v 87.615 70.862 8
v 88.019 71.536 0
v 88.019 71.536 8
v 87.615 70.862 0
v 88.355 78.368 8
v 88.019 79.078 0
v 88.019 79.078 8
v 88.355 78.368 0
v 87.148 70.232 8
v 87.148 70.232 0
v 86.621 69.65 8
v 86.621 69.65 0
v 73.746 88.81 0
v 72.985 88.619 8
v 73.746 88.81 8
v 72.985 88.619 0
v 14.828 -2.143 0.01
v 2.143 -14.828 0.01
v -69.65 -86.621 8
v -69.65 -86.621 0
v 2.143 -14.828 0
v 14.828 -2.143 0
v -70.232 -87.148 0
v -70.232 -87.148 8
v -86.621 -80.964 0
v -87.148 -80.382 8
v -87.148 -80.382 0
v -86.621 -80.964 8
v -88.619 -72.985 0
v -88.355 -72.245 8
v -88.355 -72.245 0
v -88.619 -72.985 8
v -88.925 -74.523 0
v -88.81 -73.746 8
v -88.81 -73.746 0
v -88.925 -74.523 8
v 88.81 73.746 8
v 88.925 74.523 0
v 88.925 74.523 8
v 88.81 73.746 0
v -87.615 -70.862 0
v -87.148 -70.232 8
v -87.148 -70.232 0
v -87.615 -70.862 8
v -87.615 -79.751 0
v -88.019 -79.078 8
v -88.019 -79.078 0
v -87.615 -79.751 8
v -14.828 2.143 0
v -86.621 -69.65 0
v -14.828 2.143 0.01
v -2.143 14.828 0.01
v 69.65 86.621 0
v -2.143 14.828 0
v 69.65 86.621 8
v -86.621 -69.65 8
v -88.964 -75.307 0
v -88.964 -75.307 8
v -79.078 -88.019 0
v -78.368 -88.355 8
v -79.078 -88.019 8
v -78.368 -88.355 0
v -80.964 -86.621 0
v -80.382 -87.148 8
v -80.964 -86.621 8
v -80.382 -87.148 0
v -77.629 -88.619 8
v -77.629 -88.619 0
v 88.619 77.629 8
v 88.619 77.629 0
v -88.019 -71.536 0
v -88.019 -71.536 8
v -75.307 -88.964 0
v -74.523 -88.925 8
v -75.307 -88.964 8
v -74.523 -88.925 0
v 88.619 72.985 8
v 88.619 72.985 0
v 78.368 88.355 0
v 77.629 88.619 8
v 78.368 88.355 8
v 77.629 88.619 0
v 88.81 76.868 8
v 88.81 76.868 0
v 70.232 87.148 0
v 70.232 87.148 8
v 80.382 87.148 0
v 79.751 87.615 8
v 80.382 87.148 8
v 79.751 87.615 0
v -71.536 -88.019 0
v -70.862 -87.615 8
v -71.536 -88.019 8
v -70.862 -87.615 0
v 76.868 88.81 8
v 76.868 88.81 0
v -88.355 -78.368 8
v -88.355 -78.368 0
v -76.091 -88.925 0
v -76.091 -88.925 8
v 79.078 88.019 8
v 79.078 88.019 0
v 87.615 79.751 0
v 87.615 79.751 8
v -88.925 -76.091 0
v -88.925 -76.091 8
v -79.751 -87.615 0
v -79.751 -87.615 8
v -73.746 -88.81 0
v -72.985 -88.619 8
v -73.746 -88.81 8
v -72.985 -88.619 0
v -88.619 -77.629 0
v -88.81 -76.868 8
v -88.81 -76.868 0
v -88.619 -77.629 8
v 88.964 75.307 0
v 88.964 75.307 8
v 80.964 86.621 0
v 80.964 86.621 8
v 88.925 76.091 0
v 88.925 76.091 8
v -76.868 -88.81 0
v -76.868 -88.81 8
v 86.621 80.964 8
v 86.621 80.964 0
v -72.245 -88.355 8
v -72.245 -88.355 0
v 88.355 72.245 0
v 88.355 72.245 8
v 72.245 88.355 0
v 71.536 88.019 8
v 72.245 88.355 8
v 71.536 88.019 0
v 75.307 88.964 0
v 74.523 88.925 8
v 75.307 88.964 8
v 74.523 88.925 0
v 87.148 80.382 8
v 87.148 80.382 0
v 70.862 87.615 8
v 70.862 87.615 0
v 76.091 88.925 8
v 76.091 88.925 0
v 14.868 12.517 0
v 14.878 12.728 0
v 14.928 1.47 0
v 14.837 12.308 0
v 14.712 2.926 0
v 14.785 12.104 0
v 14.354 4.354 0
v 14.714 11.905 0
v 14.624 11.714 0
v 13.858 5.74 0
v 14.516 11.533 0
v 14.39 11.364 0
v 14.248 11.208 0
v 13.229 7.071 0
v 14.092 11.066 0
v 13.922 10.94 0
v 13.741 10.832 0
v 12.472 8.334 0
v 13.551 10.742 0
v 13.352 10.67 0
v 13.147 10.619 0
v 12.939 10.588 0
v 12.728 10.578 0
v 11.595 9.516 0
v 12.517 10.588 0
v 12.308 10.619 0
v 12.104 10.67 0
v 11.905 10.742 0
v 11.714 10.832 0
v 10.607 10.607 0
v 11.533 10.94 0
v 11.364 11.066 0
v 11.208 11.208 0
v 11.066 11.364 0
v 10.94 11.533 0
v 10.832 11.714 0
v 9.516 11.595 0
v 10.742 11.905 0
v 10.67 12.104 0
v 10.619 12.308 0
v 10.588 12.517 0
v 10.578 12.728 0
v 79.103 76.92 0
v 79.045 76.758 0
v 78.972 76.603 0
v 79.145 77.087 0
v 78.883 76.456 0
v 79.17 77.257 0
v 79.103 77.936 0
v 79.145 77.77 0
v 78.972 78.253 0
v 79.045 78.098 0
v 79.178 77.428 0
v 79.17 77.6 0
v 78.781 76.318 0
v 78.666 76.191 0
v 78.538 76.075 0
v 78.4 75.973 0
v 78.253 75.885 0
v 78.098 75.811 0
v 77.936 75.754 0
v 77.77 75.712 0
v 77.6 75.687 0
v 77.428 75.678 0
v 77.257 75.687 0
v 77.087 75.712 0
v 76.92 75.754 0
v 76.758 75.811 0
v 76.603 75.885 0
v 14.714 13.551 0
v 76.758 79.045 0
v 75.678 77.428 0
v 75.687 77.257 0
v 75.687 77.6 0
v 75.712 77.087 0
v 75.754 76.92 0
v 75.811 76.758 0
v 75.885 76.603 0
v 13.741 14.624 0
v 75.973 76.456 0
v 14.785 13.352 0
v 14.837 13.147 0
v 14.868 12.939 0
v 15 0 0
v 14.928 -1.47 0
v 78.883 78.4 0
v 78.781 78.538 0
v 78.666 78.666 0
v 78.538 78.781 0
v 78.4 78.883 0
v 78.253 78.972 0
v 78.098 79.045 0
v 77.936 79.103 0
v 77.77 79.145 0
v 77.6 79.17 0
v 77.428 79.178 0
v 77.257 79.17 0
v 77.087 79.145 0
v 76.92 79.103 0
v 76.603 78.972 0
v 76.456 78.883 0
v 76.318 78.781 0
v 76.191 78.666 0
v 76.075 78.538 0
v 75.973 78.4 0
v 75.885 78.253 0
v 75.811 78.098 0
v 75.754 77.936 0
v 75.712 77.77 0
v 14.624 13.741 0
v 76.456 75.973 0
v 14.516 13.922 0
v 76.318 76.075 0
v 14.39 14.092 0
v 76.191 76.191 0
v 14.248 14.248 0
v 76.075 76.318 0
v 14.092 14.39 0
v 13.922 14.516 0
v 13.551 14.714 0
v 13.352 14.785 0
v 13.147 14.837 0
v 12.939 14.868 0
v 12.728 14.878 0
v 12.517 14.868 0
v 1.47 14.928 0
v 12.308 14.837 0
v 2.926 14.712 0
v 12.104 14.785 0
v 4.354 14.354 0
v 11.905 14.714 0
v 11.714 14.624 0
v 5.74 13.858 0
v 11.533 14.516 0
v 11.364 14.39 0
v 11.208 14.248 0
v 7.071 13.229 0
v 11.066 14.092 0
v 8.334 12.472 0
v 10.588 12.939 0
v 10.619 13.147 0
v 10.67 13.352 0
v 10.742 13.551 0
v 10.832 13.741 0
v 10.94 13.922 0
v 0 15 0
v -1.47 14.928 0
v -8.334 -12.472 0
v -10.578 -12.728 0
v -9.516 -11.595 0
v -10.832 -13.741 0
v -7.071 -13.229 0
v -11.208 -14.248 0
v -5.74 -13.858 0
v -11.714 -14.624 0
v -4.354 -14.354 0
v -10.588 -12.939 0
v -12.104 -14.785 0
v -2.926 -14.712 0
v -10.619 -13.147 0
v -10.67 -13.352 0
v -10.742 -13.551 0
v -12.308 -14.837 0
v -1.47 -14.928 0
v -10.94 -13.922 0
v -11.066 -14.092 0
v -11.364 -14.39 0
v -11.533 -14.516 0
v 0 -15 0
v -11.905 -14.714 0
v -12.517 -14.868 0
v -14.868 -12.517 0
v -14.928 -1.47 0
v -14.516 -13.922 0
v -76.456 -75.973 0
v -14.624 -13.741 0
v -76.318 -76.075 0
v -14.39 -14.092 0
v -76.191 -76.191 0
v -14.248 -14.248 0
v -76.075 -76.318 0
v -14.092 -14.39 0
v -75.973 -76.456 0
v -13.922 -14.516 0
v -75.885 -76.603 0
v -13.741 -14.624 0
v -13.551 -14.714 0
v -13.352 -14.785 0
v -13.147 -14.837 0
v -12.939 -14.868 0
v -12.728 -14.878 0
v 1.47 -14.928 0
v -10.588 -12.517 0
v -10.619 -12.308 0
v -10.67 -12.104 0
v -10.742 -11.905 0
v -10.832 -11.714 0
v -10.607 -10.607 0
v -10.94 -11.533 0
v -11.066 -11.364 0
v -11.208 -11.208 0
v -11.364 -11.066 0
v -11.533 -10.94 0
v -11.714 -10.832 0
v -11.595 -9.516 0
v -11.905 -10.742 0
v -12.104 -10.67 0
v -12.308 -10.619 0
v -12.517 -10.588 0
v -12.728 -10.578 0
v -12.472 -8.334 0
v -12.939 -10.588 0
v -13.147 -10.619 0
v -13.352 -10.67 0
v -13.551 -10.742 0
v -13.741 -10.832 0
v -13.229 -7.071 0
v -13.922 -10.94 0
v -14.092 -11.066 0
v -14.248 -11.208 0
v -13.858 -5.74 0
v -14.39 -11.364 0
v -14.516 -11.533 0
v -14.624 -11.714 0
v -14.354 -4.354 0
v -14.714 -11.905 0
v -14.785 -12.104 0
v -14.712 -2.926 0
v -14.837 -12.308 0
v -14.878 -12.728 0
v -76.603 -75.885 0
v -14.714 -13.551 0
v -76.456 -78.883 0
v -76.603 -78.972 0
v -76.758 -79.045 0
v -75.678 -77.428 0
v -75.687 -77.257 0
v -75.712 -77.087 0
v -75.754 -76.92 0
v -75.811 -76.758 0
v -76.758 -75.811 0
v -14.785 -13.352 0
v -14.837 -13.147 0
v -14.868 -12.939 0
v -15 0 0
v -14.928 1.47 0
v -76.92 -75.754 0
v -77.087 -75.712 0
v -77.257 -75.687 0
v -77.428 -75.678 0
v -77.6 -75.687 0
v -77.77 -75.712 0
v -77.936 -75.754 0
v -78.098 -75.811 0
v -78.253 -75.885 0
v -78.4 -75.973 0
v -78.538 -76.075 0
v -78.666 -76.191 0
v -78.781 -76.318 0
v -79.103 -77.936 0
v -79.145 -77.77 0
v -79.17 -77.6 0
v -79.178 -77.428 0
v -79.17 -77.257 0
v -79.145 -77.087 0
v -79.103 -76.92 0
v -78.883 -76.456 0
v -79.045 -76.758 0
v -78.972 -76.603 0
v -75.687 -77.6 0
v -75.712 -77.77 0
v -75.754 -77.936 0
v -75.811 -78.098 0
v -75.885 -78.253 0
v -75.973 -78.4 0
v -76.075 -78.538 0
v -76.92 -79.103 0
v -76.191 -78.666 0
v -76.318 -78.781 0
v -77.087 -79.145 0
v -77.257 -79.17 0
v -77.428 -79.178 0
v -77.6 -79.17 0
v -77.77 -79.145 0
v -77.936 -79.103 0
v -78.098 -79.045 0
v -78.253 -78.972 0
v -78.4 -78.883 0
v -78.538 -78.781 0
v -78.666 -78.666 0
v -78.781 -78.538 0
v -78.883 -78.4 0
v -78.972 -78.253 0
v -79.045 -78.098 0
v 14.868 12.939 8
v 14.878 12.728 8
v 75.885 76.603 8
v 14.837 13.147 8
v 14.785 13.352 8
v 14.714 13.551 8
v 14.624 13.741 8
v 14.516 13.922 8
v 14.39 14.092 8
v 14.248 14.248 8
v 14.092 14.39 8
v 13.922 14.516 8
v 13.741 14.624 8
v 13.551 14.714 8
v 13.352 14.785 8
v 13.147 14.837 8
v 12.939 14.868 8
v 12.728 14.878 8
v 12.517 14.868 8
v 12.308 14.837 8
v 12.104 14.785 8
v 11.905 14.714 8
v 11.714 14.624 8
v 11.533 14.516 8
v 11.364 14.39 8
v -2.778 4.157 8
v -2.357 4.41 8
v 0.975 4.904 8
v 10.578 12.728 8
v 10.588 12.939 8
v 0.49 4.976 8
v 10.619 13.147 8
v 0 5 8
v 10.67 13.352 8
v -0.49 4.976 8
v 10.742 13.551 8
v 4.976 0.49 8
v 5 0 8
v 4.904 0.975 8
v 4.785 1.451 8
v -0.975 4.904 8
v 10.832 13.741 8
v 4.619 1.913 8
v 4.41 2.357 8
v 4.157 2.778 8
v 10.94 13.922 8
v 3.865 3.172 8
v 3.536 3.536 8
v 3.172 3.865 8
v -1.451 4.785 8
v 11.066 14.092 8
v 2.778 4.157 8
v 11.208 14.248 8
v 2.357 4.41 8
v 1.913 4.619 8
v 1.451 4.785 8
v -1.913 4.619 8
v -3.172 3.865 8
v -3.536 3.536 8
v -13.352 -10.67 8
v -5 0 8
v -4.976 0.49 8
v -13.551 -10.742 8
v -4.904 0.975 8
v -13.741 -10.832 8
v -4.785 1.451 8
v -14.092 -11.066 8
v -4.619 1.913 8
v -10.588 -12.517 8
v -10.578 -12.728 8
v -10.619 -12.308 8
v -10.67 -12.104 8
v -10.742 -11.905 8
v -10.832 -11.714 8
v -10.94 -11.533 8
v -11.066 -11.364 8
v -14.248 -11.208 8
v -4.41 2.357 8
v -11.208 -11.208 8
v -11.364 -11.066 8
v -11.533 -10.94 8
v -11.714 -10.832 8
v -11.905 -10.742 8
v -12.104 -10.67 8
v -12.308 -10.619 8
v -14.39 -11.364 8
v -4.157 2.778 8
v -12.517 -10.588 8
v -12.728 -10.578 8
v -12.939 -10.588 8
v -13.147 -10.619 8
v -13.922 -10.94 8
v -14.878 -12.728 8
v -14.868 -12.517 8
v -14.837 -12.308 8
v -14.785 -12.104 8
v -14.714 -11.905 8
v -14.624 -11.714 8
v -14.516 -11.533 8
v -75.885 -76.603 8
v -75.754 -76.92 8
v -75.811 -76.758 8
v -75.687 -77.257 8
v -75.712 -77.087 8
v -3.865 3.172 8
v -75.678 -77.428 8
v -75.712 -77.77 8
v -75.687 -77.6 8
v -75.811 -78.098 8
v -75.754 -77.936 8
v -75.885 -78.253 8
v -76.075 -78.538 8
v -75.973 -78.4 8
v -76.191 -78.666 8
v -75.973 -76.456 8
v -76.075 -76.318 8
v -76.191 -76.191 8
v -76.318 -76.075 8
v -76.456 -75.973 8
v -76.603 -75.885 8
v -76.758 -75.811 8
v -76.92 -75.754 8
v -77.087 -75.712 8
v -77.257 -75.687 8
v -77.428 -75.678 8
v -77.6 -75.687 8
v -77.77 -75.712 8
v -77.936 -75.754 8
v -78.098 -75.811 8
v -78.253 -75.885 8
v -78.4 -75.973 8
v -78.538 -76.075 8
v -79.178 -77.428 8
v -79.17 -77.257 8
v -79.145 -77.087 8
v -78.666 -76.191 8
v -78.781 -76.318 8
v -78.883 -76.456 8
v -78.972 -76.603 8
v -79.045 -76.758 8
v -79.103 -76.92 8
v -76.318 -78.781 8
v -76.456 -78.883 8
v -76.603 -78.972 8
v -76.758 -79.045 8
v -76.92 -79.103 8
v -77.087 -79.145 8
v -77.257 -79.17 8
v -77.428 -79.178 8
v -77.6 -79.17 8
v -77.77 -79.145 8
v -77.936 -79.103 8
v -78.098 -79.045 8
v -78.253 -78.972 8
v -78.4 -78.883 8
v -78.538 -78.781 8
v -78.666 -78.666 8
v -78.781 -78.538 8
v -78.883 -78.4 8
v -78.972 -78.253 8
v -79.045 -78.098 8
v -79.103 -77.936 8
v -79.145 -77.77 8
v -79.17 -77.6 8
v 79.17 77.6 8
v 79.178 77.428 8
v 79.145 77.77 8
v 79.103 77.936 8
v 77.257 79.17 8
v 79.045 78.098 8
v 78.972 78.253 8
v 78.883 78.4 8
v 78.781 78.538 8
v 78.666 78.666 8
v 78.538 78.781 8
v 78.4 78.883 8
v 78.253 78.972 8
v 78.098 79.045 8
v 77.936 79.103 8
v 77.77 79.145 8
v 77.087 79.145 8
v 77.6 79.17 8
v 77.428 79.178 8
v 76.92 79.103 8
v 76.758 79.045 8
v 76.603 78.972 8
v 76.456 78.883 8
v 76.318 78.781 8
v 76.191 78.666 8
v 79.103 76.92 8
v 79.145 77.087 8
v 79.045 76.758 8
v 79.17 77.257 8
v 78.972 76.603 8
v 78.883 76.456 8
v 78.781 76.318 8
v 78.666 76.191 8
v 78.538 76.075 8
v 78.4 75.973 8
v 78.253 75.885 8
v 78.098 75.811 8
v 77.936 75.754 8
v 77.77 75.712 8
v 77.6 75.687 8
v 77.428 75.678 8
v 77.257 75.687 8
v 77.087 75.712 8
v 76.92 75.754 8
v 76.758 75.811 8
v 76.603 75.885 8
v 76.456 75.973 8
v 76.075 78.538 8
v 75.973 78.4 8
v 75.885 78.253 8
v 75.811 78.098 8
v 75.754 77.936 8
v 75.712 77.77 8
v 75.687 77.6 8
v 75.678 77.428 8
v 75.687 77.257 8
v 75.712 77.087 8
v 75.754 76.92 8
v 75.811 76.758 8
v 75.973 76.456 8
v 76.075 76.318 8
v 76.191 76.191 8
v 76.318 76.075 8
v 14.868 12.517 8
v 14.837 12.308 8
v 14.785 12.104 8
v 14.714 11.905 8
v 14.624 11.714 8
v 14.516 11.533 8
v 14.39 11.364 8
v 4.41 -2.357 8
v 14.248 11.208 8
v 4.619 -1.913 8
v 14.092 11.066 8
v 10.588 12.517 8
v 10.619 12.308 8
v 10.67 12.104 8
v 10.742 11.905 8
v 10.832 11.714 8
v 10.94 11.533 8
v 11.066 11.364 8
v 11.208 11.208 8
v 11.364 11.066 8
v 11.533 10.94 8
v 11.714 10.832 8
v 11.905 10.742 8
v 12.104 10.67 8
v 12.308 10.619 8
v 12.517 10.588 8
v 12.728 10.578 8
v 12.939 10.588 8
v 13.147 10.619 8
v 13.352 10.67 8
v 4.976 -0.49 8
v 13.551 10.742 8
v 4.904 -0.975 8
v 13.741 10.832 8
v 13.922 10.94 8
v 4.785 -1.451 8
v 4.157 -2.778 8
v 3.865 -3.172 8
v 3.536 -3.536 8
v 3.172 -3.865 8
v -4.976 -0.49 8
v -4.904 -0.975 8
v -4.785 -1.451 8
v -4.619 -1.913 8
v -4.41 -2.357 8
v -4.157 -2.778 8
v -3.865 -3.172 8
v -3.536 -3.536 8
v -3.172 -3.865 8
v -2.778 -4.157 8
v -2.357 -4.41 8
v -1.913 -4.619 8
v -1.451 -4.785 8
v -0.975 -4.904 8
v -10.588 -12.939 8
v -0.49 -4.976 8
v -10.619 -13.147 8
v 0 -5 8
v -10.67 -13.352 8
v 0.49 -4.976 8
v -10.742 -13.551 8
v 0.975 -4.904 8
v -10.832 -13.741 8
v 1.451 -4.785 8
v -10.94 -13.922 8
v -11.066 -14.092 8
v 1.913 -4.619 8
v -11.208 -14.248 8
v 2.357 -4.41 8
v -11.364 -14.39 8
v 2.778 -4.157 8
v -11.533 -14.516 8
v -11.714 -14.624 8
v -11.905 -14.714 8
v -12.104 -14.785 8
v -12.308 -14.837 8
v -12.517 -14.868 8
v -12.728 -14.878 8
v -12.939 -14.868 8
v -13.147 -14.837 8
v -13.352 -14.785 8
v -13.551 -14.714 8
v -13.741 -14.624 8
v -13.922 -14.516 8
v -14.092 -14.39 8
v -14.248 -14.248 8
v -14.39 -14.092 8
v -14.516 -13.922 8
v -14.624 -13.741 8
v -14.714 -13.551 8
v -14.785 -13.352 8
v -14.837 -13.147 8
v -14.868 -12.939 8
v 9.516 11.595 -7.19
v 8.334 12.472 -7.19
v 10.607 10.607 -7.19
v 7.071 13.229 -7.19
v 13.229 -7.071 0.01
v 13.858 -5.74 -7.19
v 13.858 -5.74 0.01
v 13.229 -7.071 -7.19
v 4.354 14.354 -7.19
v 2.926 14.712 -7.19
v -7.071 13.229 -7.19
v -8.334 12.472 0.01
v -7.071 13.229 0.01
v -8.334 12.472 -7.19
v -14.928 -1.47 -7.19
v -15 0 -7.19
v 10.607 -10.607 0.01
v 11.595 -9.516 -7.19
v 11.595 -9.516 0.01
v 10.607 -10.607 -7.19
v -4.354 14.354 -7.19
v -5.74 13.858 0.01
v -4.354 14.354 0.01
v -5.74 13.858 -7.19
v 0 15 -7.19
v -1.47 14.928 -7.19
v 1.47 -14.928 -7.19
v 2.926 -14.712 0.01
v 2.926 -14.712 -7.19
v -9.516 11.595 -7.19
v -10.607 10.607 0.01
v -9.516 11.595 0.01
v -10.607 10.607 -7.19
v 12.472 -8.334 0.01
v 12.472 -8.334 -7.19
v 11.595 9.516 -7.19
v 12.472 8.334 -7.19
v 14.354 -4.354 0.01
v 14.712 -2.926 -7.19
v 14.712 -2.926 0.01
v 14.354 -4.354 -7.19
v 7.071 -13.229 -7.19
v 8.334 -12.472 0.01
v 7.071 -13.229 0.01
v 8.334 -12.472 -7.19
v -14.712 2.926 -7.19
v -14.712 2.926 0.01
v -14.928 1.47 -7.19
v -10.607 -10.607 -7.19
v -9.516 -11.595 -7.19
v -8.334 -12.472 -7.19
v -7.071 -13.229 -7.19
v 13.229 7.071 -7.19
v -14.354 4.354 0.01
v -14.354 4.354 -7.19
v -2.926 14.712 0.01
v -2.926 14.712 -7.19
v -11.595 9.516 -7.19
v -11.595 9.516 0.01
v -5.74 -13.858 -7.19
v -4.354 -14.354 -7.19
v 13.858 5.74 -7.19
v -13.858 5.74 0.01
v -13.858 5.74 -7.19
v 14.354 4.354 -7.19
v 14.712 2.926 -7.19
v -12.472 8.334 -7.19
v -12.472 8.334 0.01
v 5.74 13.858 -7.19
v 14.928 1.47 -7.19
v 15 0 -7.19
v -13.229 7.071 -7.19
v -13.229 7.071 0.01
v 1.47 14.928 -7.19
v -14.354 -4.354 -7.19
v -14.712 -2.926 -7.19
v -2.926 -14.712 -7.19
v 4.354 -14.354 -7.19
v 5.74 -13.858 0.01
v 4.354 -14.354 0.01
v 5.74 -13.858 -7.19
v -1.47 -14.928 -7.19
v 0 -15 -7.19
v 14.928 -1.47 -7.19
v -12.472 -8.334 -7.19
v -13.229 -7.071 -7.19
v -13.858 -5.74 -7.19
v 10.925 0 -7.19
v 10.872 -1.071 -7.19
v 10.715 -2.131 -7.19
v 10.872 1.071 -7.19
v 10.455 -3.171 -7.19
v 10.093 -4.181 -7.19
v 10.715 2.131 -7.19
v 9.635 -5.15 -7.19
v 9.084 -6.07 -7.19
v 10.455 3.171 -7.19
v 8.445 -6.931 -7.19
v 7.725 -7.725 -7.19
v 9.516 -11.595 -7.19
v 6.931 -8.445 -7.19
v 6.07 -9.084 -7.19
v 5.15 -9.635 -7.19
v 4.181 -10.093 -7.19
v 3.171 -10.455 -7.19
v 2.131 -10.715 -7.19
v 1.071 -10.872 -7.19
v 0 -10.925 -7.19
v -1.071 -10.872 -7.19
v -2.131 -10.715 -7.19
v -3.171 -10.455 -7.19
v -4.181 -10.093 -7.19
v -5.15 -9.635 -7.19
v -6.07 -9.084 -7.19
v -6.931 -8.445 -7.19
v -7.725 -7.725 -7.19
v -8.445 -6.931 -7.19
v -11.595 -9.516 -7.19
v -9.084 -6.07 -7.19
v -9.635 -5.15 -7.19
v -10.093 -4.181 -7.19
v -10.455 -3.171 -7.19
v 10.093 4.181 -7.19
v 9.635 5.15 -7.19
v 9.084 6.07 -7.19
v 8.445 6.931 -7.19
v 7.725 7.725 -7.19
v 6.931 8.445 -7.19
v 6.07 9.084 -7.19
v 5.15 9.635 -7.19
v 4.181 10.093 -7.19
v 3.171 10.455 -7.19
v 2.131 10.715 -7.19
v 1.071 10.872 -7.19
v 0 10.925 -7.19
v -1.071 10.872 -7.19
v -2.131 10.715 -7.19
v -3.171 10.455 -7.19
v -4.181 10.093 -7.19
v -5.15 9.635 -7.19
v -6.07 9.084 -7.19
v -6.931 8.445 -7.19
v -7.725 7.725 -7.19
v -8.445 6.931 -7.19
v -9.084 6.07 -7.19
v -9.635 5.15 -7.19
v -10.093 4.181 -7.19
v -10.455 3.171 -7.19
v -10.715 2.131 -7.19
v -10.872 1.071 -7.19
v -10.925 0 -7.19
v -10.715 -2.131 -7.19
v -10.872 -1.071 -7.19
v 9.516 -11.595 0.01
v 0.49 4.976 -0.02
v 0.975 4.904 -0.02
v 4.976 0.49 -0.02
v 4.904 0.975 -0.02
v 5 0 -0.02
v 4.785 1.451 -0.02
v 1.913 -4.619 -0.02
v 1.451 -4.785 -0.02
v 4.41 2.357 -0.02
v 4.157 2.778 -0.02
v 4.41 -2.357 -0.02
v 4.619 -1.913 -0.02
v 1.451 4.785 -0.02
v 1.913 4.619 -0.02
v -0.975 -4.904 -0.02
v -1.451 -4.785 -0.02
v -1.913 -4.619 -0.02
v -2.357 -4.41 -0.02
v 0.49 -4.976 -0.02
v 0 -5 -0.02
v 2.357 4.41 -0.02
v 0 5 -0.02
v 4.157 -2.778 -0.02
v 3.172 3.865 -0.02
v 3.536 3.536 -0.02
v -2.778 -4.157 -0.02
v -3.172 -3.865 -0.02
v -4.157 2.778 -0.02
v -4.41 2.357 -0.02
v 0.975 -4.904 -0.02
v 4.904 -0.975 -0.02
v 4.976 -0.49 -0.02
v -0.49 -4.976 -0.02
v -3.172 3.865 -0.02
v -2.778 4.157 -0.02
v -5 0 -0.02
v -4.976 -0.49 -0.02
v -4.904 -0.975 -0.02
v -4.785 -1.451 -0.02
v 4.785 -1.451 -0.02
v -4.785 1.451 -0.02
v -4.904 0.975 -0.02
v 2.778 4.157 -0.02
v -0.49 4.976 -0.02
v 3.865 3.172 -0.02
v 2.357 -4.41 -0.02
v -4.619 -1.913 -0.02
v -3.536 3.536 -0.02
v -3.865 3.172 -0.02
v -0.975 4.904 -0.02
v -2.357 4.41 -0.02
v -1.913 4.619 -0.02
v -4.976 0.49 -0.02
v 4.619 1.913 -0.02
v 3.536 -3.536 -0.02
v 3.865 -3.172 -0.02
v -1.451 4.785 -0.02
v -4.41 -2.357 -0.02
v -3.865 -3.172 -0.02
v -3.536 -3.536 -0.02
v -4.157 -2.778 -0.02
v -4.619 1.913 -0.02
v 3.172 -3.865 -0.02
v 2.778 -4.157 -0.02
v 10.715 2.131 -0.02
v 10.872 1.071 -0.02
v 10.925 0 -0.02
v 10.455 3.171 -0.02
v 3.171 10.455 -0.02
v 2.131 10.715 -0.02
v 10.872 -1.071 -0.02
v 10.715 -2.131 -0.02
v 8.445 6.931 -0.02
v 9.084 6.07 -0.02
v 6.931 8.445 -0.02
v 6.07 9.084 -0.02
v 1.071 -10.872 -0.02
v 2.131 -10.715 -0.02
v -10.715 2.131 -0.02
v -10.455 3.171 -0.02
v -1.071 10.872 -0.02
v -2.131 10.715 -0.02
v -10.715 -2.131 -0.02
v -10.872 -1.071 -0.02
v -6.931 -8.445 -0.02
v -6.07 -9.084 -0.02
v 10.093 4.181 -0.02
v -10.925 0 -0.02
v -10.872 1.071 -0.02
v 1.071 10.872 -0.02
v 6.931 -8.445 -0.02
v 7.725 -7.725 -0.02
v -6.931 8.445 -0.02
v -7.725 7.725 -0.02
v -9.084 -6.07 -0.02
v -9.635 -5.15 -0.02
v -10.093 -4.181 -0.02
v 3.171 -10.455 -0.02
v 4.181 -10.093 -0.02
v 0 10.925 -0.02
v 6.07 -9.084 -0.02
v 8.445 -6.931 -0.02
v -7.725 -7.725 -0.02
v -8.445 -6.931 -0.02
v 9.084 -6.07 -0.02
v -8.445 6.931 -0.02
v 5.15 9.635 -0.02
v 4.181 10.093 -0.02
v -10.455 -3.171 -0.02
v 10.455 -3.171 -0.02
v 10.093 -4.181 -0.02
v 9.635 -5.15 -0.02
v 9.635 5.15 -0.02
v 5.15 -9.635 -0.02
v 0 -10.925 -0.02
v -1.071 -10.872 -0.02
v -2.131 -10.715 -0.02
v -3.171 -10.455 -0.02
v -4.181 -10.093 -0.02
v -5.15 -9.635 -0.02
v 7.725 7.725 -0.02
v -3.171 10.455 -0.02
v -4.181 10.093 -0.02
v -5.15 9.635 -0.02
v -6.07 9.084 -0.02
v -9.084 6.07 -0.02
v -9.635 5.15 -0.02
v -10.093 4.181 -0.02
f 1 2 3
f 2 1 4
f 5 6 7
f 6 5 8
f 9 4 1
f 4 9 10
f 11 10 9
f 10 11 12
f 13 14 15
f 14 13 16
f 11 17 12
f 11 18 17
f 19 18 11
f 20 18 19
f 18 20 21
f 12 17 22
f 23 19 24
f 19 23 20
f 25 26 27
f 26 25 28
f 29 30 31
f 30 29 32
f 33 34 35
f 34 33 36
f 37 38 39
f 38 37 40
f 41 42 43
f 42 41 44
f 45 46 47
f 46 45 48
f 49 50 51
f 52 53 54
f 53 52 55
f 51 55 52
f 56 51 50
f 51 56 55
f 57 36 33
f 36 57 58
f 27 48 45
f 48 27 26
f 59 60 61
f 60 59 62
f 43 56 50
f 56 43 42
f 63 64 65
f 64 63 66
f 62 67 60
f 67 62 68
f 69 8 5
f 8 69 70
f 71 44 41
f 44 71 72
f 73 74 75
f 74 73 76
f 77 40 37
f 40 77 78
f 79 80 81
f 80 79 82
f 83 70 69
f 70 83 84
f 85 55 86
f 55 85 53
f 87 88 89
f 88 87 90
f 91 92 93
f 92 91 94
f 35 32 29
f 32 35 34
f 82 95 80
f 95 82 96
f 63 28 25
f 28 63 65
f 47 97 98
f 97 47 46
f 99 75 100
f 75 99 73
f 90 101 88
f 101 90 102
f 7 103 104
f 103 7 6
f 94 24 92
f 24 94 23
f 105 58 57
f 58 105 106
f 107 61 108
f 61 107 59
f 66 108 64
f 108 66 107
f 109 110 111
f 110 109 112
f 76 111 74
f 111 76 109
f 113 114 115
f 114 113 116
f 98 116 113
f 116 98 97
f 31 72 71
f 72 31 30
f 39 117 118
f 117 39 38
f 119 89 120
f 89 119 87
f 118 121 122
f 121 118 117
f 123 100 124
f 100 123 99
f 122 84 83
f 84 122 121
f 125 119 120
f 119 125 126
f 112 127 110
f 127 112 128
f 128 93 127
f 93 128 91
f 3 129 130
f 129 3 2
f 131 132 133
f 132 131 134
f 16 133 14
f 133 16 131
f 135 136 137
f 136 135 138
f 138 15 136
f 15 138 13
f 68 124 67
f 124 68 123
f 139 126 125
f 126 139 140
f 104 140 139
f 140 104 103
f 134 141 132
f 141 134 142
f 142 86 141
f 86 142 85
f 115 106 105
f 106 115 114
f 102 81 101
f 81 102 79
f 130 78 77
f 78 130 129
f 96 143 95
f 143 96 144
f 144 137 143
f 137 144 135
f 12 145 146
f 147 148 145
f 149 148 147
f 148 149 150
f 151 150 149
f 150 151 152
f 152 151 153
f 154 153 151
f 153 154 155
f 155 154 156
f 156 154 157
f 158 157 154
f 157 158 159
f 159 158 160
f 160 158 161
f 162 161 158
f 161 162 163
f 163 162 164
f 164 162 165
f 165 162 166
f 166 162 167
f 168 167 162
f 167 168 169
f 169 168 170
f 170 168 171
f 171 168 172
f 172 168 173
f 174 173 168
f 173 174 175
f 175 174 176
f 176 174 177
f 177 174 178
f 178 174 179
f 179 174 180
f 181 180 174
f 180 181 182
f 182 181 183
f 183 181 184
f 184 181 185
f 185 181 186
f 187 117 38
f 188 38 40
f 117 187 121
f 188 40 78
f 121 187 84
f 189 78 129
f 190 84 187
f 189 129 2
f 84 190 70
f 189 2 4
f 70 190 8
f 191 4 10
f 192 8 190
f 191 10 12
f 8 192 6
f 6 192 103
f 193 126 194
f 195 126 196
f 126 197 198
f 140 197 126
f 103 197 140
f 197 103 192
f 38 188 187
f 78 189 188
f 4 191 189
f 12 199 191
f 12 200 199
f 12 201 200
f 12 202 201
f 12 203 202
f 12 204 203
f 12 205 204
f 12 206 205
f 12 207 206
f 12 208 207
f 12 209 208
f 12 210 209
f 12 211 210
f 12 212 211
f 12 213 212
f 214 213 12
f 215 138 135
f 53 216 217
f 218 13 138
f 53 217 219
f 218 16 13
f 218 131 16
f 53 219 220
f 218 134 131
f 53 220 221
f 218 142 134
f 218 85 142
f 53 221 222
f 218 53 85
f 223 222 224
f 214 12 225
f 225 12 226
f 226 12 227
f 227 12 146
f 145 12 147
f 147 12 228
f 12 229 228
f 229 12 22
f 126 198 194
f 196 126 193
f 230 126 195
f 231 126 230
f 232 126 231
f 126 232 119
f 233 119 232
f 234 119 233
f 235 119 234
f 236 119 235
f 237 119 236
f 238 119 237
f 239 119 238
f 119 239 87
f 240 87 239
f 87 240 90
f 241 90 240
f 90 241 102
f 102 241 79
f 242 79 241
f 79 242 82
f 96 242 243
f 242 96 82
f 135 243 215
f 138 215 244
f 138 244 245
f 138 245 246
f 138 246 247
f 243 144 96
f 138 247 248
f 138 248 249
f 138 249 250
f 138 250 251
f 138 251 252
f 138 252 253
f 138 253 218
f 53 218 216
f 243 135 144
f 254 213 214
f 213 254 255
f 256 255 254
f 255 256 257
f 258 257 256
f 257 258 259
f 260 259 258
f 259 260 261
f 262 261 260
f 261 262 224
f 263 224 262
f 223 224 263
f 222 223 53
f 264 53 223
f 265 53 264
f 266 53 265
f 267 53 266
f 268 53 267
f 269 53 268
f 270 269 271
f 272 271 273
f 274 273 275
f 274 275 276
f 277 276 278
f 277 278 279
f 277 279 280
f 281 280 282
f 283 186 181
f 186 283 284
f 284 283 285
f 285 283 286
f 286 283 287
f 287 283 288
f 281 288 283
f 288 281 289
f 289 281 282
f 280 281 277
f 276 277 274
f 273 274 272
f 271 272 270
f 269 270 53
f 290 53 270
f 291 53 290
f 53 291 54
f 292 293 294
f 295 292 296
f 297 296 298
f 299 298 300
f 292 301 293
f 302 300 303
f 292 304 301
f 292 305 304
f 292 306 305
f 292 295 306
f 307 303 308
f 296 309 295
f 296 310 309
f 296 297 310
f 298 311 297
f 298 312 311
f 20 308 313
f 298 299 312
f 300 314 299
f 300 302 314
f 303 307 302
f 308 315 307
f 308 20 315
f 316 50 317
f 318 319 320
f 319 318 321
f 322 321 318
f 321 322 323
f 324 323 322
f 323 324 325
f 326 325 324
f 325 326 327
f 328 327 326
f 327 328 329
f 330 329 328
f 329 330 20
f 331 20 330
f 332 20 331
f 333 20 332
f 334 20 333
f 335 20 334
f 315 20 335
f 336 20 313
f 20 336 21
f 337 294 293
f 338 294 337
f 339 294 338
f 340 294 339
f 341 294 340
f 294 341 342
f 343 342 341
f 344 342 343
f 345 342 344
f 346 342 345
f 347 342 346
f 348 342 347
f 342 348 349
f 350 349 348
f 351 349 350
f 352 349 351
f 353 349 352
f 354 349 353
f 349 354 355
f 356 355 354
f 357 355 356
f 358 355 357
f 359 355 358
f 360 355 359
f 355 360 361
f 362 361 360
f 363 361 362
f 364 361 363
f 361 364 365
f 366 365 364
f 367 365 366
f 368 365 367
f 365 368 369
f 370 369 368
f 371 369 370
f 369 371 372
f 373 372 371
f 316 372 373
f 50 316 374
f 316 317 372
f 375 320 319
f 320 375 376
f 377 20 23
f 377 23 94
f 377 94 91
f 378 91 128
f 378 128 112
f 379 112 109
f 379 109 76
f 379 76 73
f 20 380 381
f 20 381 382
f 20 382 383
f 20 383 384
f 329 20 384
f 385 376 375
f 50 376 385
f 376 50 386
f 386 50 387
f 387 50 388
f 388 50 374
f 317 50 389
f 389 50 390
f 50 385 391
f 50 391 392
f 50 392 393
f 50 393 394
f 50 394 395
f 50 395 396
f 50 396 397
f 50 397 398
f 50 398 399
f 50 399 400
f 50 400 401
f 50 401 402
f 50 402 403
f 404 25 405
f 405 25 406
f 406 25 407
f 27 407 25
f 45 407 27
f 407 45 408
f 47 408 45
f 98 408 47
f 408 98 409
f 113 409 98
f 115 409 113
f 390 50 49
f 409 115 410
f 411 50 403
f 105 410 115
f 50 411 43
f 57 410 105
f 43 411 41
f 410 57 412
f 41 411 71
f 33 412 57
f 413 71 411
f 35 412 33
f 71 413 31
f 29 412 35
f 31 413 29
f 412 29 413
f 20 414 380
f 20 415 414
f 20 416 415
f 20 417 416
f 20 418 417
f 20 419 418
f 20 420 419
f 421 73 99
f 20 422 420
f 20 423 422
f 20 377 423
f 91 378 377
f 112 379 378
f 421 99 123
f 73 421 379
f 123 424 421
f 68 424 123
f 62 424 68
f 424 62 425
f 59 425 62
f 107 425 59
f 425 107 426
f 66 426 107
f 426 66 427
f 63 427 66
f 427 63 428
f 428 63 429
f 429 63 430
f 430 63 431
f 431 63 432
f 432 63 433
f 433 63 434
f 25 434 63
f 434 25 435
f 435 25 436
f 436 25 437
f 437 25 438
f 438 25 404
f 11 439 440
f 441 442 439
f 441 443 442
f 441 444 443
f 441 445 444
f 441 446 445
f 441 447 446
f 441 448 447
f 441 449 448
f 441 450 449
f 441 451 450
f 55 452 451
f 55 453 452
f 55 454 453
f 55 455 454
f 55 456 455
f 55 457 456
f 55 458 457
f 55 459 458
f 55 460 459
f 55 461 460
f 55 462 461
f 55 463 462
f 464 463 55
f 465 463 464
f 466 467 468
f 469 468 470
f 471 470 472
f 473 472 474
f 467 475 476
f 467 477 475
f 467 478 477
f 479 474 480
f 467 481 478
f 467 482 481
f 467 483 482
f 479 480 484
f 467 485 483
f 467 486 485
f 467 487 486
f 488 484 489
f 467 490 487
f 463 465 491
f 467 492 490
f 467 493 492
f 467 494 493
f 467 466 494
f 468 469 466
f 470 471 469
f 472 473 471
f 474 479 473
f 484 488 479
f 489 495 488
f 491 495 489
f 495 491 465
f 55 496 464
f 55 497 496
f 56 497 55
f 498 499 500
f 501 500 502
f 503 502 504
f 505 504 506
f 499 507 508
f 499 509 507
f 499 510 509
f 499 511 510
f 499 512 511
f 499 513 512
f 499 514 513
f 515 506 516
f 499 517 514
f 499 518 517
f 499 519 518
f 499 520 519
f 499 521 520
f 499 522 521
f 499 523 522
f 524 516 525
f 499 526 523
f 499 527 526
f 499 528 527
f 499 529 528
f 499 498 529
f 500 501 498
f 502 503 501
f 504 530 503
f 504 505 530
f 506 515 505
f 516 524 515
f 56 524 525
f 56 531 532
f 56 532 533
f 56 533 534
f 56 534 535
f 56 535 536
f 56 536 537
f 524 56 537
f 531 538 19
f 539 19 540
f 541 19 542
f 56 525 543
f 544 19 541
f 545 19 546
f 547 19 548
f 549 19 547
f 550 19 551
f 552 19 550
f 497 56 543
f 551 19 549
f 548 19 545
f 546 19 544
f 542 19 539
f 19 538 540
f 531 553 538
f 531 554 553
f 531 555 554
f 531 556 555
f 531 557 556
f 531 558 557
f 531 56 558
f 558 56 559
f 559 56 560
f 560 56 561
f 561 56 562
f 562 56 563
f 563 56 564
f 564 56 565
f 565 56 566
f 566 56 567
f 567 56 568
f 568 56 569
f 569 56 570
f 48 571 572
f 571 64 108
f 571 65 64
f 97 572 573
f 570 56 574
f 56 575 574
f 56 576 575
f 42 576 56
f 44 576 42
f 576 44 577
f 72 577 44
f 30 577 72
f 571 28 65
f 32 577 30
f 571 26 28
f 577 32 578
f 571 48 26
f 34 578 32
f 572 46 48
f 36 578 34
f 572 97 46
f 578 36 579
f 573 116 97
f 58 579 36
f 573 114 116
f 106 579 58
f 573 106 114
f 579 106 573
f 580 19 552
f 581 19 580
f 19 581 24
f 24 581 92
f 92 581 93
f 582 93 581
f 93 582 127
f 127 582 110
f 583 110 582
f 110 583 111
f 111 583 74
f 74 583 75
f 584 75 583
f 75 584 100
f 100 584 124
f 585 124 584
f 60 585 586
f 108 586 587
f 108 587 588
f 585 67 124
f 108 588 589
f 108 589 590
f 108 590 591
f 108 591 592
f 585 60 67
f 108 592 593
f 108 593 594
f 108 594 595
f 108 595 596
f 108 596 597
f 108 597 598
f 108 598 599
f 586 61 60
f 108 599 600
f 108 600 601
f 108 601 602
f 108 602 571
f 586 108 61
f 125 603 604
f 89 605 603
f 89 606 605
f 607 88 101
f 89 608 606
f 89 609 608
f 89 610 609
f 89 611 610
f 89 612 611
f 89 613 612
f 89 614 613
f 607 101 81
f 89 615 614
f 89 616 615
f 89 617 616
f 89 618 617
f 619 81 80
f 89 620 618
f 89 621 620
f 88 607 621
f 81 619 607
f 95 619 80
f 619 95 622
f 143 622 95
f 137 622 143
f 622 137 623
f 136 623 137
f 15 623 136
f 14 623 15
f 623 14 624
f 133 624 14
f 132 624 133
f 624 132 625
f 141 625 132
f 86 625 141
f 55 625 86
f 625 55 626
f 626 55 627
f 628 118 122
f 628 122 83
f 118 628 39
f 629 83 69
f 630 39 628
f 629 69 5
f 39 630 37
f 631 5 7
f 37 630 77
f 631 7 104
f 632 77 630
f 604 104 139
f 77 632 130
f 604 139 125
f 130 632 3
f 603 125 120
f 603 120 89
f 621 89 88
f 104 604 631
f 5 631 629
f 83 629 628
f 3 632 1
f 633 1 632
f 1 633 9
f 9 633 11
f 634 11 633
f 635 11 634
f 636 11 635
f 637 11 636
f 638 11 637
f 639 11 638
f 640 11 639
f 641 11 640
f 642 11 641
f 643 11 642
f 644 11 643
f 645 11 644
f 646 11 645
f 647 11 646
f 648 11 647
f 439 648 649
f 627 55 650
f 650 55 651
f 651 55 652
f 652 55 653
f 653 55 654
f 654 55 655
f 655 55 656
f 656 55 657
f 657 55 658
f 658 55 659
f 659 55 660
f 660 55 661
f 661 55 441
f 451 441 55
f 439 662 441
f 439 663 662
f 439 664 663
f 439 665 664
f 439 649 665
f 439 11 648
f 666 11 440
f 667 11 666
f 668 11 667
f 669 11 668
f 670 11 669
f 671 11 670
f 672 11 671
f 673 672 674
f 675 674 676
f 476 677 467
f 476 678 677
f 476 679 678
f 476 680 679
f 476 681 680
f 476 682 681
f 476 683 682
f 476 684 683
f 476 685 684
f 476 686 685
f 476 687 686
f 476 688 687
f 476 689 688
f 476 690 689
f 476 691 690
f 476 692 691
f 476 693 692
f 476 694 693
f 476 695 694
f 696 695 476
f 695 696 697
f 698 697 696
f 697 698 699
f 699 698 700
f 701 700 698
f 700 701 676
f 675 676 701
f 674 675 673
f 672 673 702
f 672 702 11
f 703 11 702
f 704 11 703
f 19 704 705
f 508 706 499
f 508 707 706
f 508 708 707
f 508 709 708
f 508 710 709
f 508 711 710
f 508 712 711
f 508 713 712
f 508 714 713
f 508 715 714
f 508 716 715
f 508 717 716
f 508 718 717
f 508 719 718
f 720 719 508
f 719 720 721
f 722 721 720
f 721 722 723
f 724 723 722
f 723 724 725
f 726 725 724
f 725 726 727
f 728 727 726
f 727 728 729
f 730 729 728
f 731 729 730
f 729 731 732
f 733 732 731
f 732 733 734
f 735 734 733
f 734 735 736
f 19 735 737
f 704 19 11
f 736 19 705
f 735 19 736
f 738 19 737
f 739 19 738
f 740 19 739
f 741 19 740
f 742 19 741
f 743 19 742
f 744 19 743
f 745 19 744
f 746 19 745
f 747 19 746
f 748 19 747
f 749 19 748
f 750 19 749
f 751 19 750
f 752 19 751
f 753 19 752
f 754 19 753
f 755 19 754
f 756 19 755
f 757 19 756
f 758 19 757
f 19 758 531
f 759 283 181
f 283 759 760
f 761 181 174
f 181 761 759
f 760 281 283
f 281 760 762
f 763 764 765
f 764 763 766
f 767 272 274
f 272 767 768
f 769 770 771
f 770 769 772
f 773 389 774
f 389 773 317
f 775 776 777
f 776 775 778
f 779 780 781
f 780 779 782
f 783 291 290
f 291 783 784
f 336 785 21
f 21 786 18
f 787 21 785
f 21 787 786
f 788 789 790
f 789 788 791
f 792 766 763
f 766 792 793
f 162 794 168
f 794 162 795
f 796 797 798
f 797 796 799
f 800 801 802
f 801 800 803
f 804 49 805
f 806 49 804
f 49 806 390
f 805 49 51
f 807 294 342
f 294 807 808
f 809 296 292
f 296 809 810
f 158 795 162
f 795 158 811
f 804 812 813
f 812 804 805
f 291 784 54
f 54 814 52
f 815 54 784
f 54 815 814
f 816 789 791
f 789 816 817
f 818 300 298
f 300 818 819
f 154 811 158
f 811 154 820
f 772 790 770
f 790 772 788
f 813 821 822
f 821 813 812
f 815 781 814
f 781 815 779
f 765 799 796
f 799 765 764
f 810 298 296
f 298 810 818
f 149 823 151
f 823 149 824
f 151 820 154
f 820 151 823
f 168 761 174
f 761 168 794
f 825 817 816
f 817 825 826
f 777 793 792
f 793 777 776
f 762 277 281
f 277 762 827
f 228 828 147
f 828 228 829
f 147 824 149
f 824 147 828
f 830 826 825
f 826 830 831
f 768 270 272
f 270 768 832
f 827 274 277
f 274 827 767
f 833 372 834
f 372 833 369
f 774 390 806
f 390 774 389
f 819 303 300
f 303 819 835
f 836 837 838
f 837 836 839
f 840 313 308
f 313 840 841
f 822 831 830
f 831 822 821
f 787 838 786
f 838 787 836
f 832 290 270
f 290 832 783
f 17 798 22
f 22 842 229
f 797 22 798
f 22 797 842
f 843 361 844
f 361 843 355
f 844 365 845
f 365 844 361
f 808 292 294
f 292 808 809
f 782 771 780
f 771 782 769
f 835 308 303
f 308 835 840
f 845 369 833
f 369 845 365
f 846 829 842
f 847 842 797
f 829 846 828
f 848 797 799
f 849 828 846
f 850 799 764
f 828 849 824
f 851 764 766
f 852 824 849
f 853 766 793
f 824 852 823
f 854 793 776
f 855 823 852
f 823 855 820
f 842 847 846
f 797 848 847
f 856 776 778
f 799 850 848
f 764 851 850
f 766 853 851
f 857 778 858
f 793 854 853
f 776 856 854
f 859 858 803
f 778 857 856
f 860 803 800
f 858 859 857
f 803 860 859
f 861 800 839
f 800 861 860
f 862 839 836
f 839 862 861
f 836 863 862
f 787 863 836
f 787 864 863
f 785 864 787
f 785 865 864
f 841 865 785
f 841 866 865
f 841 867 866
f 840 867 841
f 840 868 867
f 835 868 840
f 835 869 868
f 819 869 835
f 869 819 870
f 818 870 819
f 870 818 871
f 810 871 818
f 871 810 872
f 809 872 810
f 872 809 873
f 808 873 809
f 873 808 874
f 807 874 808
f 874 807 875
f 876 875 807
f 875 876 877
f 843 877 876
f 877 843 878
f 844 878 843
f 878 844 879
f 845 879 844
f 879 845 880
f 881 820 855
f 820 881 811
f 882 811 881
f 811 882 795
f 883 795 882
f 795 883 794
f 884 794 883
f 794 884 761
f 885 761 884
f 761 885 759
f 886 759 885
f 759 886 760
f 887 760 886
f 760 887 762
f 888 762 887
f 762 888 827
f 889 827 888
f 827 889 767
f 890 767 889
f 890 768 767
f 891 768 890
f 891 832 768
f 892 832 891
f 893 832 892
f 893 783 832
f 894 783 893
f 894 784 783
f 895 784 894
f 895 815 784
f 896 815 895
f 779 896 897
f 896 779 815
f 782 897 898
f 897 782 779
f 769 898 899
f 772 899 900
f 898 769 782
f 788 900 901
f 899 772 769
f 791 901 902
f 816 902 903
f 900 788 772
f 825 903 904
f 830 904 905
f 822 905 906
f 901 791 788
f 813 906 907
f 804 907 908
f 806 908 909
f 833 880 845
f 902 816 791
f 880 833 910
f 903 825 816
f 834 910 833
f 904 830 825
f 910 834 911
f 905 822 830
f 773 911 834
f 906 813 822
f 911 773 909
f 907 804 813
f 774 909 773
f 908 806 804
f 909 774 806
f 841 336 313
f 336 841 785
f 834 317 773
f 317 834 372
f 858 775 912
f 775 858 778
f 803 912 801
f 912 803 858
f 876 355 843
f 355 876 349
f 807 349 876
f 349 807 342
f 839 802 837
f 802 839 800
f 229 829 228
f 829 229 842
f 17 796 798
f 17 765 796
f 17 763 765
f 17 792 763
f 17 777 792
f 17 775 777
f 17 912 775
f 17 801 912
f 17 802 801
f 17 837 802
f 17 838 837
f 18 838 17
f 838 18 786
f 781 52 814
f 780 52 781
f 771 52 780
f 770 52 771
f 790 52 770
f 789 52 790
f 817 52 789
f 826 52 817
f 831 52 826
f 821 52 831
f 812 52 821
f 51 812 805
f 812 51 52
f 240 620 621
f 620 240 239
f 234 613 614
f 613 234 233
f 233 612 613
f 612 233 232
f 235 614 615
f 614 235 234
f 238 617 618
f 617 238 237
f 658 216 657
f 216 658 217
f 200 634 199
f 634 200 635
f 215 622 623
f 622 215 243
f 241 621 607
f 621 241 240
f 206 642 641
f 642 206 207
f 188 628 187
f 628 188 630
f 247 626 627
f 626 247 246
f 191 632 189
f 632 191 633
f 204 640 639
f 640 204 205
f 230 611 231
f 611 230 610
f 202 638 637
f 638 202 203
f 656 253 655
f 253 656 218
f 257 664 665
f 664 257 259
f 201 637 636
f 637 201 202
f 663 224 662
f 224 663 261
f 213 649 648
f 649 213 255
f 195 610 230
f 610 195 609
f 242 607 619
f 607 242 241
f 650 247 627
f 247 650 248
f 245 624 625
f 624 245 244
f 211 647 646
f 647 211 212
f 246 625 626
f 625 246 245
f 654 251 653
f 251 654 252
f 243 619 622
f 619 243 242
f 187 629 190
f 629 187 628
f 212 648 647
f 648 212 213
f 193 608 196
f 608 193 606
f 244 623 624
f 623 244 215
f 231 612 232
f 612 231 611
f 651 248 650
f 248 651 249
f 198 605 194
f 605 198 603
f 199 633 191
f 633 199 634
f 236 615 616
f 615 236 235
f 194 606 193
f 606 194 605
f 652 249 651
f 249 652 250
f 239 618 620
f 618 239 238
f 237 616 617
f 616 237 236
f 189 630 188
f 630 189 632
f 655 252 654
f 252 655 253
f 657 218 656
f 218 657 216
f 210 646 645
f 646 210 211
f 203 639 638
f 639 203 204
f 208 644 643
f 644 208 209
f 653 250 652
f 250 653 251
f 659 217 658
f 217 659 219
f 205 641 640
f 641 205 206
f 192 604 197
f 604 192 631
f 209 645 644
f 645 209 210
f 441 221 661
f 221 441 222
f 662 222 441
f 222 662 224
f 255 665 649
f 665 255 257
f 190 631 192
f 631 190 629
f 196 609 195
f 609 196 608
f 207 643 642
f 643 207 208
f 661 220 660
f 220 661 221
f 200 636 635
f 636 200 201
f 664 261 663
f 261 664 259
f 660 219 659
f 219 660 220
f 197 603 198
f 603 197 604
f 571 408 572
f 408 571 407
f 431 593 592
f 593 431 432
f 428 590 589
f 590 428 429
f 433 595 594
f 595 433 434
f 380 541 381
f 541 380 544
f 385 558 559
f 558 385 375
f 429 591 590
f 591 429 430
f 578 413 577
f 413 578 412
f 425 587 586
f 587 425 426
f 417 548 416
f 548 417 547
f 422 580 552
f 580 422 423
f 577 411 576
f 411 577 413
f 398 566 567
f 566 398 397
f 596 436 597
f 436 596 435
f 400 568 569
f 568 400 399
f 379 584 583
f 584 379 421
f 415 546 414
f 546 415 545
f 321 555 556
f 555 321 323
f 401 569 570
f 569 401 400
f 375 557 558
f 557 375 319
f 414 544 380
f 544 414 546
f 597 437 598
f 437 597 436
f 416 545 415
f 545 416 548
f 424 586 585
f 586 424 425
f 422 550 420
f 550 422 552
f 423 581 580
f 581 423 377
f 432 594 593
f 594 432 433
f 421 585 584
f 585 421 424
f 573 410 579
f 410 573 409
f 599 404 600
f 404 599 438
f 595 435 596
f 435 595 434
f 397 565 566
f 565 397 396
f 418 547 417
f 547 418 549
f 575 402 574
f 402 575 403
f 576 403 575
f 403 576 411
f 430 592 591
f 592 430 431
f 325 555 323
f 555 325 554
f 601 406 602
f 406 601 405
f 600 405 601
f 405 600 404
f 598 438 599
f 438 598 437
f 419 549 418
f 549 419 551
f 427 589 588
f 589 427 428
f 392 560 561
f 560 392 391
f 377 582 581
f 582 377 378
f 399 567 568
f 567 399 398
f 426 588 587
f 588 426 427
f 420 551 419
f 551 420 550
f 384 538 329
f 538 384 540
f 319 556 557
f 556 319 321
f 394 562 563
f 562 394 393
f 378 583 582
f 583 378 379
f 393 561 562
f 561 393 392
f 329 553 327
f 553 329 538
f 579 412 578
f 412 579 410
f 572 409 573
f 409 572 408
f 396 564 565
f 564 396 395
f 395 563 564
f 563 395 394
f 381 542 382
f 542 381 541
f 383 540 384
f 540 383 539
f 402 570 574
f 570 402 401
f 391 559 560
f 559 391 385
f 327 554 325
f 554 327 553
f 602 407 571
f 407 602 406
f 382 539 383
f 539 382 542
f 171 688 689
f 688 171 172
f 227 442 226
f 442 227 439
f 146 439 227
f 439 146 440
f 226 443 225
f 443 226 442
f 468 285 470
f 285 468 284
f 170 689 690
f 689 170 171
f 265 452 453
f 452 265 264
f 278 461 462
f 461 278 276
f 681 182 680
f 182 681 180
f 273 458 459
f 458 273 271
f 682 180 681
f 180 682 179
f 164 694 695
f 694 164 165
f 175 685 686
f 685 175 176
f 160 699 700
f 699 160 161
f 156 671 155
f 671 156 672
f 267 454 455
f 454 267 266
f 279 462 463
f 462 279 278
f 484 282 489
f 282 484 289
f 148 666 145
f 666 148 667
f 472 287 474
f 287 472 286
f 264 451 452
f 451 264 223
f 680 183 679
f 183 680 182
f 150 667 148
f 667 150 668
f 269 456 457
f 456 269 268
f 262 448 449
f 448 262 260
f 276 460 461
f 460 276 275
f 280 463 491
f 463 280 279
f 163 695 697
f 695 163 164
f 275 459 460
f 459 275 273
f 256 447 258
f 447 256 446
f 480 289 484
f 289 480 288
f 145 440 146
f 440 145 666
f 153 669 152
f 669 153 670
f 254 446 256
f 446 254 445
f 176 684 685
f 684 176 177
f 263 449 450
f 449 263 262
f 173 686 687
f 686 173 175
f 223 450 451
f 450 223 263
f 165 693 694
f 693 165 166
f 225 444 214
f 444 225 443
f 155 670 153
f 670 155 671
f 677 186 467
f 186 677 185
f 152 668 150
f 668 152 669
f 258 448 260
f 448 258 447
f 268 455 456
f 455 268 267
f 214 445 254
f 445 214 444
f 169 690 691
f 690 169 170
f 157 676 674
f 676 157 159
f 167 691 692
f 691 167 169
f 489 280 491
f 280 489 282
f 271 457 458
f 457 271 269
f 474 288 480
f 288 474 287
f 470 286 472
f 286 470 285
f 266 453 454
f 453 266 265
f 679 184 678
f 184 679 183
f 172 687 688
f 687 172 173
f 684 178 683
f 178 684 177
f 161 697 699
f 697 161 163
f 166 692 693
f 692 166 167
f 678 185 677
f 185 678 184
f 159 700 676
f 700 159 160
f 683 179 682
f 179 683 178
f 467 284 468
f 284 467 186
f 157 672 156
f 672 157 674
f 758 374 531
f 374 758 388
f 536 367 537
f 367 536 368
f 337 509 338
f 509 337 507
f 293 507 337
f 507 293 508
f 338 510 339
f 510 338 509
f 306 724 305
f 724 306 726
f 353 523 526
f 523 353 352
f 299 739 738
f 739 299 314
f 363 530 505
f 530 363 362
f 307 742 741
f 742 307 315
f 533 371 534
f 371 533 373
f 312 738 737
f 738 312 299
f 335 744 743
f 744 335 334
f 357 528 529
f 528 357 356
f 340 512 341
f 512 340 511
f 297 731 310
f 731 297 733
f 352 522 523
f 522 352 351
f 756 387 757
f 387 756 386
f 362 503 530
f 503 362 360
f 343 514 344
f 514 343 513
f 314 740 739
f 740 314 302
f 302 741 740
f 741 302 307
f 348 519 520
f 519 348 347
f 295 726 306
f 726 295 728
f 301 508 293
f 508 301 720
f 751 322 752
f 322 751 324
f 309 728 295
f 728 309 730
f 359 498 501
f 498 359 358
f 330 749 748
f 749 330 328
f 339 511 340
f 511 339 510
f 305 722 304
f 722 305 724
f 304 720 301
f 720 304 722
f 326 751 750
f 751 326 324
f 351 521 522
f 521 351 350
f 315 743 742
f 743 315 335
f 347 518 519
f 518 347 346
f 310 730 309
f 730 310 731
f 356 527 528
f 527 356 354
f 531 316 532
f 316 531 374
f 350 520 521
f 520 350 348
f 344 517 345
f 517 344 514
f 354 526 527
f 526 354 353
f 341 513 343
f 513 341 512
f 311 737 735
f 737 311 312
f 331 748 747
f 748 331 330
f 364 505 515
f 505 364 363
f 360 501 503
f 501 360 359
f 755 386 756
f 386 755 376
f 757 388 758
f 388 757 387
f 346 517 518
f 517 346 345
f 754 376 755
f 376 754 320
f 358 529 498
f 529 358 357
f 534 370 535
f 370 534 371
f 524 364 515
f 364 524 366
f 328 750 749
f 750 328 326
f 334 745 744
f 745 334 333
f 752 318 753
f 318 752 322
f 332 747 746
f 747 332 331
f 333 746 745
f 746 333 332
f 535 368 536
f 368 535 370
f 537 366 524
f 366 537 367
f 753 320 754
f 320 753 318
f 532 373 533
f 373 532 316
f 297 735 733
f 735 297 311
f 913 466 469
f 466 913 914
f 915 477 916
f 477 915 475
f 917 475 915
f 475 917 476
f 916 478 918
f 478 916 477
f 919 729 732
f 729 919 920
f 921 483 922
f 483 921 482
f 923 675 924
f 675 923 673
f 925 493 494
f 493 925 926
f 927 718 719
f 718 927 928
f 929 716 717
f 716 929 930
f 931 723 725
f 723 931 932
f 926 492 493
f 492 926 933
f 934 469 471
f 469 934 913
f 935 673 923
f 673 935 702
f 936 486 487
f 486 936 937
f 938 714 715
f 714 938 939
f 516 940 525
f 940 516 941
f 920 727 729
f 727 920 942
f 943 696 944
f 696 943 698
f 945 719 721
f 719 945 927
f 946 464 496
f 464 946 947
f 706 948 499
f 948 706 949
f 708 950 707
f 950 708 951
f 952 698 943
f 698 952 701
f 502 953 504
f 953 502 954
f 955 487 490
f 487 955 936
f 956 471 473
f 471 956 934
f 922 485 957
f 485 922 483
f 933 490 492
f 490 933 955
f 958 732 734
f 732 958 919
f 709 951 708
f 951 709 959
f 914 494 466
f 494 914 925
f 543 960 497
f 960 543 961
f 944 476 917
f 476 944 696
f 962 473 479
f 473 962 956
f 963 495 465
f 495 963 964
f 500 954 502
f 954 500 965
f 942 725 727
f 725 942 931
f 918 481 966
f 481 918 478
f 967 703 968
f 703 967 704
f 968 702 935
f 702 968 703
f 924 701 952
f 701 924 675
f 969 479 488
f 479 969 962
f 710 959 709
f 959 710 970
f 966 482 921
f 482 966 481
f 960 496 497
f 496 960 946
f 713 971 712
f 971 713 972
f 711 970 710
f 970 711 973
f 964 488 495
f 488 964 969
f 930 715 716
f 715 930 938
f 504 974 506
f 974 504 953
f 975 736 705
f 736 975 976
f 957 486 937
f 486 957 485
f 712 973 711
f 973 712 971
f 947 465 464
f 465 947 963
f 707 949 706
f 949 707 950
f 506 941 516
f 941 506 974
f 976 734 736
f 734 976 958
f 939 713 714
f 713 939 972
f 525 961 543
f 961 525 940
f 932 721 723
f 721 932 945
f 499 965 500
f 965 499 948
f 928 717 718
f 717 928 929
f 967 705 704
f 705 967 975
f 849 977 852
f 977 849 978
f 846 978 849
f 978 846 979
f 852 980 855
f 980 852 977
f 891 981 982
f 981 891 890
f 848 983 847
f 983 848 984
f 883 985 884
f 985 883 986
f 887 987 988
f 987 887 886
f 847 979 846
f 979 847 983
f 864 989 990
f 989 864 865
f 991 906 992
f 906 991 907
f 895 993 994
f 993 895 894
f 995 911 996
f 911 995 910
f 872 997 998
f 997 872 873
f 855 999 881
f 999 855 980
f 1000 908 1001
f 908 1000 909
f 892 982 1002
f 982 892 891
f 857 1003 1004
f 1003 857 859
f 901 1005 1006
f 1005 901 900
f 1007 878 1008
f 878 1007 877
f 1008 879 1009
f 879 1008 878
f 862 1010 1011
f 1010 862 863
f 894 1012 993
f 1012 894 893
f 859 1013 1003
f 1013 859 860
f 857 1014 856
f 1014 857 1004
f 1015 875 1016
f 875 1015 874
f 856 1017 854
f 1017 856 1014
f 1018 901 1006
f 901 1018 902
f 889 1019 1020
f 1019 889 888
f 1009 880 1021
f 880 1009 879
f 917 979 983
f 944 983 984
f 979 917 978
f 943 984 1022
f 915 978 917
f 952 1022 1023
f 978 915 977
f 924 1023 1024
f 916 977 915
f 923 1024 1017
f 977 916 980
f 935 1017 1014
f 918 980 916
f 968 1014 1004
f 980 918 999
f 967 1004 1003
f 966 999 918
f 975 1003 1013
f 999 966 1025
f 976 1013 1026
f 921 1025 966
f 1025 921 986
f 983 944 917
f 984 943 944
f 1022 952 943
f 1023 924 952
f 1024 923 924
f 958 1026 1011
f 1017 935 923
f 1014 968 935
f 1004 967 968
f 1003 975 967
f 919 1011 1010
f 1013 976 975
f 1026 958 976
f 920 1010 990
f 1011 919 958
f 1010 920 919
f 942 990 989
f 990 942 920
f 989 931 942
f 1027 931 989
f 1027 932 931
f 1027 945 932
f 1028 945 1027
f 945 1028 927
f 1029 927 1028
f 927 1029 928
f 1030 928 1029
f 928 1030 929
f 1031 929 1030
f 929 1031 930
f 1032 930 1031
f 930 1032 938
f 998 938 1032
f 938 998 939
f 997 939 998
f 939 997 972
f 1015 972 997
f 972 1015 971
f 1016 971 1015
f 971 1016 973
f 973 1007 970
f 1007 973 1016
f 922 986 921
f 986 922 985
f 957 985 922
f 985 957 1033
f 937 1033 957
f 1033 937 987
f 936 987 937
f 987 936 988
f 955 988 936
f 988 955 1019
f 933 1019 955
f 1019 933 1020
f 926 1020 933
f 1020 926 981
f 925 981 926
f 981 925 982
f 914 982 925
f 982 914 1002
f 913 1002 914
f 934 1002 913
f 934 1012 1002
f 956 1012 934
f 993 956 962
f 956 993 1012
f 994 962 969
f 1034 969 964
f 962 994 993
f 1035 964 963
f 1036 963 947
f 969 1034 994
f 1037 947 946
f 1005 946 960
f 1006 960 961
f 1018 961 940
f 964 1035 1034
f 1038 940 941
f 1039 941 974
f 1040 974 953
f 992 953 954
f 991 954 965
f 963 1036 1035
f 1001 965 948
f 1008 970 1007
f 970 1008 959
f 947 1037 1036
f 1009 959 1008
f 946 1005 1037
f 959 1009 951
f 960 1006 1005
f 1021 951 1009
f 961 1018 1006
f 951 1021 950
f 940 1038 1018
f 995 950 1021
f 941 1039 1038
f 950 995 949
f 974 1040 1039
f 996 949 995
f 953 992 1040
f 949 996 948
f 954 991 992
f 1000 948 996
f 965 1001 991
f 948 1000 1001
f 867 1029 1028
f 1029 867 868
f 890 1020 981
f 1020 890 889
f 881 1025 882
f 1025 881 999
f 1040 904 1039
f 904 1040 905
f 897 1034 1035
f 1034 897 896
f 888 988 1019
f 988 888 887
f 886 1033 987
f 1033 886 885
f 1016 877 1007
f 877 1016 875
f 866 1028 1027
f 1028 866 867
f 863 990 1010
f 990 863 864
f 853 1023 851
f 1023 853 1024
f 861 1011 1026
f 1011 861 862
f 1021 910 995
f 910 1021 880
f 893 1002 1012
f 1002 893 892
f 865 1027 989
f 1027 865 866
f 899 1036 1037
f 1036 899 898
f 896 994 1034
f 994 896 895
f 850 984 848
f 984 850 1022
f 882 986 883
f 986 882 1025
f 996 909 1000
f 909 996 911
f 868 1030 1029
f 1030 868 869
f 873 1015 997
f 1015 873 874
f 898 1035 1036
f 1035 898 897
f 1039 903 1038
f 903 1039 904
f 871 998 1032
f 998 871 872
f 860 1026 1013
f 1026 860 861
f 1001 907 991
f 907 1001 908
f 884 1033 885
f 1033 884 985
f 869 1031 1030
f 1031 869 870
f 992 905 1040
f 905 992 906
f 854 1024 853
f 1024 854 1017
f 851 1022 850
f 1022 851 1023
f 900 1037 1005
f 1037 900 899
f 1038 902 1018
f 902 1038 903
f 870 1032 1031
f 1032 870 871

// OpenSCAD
// Gen-CK — front BEARING BRIDGE (bar endbell, 2026-10-10): a 608 boss on a 24 mm wide bar that spans the
// two frame rods at 45 deg and 45+180 deg (R = flange_bolt_r). The front bridge uses the rods at 45/225 deg, the rear
// bridge the rods at 135/315 deg, so the two bridges cross at 90 deg and the stator is held at 4 points.
// A bar instead of a full disc is what lets this big-ring kit fit ONE 410 mm plate. Print flat face DOWN (boss up, no supports).
// Brace holes (temporary M4 jack rods, R = brace_r) sit on the bar axis.
include <parameters.scad>;
$fn = 64;
bar_w = 24;
bar_len = 2 * (flange_bolt_r + 9);
module bar_2d() { offset(r=8) offset(delta=-8) square([bar_len, bar_w], center=true); }
difference() {
    rotate([0, 0, 45]) union() {
        linear_extrude(endbell_thick) bar_2d();
        translate([0, 0, -bearing_h + 0.01]) cylinder(d=30, h=bearing_h);
    }
    translate([0, 0, -bearing_h - 0.1]) cylinder(d=endbell_shaft_clear, h=50);
    translate([0, 0, -bearing_h - 0.02]) cylinder(d=bearing_d, h=bearing_h);
    for (s = [0, 180]) rotate([0, 0, 45 + s]) translate([flange_bolt_r, 0, -20]) cylinder(d=m3_clear, h=60);
    for (a = brace_angles) translate([brace_r*cos(a), brace_r*sin(a), -20]) cylinder(d=brace_d, h=50);
}
